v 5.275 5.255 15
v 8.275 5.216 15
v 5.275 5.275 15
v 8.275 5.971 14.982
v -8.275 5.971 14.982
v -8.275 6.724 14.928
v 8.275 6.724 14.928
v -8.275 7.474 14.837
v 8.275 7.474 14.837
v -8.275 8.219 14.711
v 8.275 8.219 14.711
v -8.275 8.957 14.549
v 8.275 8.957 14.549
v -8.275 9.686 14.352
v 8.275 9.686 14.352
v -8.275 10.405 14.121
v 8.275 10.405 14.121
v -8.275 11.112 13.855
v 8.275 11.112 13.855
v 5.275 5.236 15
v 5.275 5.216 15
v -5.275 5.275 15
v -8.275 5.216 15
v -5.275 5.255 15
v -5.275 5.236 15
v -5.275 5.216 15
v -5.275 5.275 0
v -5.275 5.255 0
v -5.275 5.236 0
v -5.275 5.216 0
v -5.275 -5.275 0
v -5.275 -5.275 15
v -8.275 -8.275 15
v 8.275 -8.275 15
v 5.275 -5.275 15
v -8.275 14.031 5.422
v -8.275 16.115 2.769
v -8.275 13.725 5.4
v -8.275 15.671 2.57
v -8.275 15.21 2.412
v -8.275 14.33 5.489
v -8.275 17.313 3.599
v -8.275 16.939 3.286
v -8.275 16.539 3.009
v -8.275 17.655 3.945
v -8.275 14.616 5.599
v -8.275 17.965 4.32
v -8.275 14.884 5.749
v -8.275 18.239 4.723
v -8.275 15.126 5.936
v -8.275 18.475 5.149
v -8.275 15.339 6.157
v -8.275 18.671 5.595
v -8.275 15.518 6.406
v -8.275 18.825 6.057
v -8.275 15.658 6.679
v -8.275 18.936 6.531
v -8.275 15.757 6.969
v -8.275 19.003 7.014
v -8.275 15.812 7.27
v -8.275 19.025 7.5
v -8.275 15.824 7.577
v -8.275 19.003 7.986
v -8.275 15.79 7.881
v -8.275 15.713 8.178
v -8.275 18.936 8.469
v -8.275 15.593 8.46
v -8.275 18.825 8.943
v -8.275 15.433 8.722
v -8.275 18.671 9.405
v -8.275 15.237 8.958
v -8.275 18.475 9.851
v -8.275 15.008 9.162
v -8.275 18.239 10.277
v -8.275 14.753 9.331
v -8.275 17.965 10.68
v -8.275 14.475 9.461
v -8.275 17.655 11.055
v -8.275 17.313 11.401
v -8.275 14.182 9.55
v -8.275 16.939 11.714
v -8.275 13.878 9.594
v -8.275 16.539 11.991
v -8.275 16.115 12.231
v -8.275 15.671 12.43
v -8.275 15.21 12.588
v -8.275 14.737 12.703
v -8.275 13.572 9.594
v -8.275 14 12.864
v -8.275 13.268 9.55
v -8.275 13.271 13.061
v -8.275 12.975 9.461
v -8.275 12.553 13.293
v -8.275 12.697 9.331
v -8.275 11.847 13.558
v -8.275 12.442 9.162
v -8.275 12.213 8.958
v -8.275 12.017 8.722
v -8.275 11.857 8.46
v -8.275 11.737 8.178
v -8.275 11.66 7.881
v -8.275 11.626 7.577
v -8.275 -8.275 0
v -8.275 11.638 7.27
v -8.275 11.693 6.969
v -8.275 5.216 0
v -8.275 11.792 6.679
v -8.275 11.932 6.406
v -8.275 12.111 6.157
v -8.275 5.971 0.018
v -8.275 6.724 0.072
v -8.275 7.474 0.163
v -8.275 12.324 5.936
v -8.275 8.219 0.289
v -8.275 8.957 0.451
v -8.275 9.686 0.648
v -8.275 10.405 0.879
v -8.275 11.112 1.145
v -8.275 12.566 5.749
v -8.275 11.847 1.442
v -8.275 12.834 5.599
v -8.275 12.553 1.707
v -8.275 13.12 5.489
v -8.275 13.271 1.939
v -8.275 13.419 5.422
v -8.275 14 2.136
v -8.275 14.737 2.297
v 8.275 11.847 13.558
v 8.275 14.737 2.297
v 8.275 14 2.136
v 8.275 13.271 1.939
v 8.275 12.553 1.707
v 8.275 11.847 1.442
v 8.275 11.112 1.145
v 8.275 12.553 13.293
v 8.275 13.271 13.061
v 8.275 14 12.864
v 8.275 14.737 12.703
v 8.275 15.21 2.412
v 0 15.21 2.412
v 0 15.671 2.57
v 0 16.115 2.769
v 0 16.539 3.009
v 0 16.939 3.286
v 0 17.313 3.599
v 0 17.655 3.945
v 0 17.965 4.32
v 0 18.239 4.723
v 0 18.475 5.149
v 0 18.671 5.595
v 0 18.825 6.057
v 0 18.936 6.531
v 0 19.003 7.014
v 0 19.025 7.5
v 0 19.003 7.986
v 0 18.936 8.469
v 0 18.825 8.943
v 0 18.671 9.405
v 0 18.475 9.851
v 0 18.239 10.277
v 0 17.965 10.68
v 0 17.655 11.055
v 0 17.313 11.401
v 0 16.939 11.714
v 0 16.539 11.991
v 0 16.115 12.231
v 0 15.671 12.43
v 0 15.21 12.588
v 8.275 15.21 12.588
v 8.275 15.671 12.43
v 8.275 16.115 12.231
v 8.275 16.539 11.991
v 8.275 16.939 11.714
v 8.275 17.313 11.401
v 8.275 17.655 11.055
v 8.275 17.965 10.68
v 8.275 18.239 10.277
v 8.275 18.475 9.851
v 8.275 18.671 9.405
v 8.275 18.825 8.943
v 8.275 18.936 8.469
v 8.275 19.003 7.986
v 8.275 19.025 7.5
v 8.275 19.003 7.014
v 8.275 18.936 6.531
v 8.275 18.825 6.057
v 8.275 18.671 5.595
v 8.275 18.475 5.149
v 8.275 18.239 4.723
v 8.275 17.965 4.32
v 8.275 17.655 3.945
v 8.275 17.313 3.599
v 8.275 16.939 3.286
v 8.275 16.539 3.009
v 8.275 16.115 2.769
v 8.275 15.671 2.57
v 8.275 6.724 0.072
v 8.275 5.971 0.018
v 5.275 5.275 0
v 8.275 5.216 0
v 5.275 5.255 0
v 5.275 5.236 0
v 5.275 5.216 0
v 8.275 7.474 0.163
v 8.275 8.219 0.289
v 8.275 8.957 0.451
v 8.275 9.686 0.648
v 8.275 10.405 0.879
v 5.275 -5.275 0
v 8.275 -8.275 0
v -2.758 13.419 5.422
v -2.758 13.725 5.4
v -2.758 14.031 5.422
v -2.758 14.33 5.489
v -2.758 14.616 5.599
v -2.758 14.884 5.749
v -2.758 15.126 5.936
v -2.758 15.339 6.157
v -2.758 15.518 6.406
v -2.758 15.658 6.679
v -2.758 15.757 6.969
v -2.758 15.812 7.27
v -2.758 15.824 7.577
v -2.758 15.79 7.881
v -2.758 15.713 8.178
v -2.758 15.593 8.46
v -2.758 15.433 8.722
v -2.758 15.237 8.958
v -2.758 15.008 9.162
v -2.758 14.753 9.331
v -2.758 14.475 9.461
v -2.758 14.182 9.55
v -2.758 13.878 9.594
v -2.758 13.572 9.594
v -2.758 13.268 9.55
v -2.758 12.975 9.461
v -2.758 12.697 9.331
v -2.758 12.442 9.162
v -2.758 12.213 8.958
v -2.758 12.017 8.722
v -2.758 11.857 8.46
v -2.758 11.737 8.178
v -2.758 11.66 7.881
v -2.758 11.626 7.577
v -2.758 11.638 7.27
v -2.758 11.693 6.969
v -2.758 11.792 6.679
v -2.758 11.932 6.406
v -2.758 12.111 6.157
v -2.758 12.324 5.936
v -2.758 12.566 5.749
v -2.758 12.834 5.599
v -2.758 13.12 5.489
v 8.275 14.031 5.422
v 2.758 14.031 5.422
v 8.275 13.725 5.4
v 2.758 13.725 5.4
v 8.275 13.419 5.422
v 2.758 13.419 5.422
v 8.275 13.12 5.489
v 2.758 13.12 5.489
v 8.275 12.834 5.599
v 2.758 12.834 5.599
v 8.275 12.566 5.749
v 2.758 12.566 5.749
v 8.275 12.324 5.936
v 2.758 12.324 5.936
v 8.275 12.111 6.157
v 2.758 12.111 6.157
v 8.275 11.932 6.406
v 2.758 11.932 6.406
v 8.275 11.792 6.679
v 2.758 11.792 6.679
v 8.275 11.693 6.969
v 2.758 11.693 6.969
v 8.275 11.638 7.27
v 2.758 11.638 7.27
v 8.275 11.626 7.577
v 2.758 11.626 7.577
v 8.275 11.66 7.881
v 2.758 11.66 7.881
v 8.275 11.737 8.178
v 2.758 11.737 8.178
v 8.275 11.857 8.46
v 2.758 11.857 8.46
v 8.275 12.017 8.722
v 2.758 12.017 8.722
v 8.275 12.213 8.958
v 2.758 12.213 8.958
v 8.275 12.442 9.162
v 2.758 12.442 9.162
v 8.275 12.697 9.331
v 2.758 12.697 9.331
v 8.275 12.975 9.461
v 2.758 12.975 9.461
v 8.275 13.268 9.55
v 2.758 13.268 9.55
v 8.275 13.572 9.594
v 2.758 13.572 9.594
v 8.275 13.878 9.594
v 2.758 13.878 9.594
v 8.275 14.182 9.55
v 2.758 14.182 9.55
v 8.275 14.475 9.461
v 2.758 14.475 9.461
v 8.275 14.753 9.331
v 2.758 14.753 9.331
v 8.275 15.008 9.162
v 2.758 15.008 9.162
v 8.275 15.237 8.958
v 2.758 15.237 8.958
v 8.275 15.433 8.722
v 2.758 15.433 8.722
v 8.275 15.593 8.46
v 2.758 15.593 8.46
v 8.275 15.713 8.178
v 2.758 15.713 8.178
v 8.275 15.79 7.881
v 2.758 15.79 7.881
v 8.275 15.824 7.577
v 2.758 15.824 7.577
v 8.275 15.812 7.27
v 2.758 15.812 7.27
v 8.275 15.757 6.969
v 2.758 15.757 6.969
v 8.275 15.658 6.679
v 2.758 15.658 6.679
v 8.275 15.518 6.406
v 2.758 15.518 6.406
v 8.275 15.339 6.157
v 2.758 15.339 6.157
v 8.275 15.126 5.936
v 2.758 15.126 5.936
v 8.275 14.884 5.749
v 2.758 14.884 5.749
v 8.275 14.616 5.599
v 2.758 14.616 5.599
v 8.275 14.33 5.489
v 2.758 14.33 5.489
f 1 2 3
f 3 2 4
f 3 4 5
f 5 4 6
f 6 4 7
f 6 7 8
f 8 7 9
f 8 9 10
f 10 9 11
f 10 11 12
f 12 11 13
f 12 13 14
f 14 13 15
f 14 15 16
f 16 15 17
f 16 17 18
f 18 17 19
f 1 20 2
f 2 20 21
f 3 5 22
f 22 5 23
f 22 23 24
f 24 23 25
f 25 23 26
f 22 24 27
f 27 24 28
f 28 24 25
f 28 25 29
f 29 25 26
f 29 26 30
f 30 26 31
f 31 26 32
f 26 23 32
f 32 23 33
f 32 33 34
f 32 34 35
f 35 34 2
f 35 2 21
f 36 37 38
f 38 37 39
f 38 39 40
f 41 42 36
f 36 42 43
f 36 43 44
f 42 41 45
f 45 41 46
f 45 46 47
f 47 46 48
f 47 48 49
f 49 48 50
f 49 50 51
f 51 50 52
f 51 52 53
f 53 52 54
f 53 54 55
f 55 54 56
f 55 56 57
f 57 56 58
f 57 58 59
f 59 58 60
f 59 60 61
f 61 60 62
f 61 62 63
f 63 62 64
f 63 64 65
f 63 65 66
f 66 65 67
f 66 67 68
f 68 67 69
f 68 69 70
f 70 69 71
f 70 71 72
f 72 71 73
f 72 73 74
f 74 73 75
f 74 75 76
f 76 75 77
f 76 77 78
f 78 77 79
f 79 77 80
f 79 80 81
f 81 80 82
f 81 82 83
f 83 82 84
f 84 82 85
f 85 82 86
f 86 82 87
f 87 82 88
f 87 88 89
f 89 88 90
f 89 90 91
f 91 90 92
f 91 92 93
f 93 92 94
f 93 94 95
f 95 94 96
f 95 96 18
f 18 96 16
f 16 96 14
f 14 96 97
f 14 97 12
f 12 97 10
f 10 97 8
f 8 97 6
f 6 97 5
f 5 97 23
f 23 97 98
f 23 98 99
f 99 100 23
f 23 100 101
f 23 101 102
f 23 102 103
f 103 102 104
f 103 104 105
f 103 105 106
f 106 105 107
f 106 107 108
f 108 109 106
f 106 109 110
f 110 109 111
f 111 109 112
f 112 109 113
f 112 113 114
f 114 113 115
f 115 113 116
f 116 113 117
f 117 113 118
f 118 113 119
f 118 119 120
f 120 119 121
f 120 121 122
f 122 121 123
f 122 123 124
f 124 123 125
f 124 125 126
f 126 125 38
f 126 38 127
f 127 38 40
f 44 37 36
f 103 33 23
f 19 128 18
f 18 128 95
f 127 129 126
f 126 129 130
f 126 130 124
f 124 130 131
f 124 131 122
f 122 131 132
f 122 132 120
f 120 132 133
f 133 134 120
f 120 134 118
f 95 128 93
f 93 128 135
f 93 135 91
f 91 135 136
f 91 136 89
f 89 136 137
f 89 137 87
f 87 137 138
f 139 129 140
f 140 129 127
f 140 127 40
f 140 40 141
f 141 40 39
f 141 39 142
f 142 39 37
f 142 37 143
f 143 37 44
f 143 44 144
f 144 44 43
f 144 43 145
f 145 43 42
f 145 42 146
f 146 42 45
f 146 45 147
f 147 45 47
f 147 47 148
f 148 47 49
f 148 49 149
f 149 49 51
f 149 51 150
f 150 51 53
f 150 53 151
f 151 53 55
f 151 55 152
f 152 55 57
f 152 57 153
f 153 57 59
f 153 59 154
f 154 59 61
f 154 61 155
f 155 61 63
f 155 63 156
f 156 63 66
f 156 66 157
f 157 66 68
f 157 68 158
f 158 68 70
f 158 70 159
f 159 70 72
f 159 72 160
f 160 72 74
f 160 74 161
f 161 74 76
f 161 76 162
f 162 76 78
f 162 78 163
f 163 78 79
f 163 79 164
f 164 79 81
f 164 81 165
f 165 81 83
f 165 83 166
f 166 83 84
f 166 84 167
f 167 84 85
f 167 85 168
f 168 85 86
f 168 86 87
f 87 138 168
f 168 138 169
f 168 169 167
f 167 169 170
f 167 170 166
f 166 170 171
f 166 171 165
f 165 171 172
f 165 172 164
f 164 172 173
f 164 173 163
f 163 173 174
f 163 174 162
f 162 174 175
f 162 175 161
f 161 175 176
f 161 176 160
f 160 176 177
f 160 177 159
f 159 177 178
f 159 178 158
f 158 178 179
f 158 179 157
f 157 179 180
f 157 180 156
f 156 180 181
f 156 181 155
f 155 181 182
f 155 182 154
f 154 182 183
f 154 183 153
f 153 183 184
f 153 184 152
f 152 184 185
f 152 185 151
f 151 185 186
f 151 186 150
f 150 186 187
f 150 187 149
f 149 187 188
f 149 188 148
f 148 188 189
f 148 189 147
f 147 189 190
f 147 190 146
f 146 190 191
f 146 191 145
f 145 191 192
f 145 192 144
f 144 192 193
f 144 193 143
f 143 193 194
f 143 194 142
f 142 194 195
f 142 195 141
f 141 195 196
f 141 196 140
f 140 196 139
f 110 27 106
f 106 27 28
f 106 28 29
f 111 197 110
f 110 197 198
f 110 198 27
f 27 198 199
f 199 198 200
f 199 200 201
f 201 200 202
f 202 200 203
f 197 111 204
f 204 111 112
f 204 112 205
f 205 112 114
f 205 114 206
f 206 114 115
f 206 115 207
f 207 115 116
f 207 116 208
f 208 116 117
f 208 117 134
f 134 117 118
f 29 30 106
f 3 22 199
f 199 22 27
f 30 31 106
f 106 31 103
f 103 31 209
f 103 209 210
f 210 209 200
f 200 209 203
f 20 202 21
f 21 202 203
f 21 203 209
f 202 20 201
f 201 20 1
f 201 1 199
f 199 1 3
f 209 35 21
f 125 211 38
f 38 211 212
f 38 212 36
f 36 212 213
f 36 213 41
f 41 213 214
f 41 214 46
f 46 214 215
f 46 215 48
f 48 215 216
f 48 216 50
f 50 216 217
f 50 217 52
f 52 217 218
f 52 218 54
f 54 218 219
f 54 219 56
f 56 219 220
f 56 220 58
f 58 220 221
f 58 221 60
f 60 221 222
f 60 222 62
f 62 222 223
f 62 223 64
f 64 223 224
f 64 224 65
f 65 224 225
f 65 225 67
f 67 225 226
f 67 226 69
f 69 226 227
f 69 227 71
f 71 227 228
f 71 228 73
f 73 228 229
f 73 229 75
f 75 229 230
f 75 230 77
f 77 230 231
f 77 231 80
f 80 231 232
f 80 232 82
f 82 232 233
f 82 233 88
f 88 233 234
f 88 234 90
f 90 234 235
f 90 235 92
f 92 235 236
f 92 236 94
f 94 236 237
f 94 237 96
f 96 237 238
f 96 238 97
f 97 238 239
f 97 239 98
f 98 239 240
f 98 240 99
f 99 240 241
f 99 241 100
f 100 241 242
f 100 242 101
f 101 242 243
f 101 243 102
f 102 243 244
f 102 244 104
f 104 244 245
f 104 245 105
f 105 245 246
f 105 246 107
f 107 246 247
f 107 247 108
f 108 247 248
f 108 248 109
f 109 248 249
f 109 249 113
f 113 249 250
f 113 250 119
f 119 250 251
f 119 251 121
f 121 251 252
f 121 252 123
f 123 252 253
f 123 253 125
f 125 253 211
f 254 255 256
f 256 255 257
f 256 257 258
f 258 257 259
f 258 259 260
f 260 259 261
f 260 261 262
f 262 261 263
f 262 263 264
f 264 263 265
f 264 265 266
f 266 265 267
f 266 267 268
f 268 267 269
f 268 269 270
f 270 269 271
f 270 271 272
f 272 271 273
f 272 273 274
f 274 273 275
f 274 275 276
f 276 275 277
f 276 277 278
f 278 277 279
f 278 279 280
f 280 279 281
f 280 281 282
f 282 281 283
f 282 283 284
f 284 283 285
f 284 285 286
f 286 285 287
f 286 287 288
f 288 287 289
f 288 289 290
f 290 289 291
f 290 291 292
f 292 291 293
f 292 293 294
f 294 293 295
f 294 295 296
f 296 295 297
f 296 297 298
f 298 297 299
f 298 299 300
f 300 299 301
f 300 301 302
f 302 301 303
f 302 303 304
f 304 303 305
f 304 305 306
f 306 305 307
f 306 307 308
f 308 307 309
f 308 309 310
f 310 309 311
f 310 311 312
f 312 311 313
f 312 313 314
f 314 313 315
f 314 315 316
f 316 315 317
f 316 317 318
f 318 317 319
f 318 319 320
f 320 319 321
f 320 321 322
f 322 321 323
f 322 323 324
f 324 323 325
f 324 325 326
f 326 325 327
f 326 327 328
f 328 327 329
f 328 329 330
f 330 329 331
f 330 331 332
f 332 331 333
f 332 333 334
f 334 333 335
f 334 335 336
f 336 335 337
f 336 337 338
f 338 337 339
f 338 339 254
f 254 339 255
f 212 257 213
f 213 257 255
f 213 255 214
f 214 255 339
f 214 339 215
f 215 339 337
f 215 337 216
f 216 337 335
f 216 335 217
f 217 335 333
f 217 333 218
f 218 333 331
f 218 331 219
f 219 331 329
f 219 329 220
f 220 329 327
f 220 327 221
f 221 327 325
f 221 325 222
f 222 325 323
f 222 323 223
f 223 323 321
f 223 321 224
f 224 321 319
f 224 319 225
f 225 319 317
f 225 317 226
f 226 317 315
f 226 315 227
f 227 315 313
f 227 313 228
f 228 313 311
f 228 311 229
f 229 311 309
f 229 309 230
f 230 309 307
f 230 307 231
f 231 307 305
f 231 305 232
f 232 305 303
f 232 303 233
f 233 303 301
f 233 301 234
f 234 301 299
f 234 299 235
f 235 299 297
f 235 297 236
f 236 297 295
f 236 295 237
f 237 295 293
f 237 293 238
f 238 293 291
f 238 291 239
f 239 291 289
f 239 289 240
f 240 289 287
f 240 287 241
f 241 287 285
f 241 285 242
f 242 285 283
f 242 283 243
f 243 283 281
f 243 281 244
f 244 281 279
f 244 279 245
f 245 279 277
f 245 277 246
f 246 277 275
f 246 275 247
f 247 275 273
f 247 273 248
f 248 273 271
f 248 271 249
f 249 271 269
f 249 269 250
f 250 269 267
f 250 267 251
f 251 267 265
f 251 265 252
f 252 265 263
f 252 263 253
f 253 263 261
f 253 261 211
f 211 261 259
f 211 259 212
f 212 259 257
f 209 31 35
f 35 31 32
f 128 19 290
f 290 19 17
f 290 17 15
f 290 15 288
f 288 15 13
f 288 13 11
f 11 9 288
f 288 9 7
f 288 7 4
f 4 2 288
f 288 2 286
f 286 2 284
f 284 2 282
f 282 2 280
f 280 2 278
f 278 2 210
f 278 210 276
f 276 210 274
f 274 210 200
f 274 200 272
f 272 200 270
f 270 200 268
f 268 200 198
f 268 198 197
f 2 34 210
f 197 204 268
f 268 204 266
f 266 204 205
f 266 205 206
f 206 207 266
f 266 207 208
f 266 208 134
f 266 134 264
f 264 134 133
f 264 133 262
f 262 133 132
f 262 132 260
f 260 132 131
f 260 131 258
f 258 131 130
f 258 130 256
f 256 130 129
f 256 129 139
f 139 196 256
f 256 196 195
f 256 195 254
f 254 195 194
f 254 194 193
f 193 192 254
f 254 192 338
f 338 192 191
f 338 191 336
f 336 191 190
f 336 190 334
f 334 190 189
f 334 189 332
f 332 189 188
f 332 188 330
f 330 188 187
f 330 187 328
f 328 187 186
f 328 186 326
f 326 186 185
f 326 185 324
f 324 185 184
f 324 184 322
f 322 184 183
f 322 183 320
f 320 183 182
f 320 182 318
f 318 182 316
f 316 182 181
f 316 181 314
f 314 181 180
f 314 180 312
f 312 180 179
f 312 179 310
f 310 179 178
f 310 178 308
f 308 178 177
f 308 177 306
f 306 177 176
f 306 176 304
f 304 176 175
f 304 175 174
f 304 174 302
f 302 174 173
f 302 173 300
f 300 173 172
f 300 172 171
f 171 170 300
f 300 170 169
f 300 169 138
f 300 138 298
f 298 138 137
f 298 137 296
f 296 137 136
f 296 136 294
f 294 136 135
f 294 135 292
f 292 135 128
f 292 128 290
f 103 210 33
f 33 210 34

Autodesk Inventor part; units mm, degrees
ref_plane "YZ Plane" through (0, 0, 0) normal (1, 0, 0) x (0, 1, 0)
ref_plane "XZ Plane" through (0, 0, 0) normal (0, 1, 0) x (-1, 0, 0)
ref_plane "XY Plane" through (0, 0, 0) normal (0, 0, 1) x (1, 0, 0)
sketch "Skizze1" plane through (0, 0, 0) normal (0, 0, 1) x (1, 0, 0)
  line L0 (-5.275, 5.275) -> (5.275, 5.275)
  line L1 (5.275, 5.275) -> (5.275, -5.275)
  line L2 (5.275, -5.275) -> (-5.275, -5.275)
  line L3 (-5.275, -5.275) -> (-5.275, 5.275)
  line L4 (-5.275, 5.275) -> (5.275, -5.275) construction
  line L5 (5.275, 5.275) -> (-5.275, -5.275) construction
  line L6 (8.275, 8.275) -> (-8.275, 8.275)
  line L7 (-8.275, 8.275) -> (-8.275, -8.275)
  line L8 (-8.275, -8.275) -> (8.275, -8.275)
  line L9 (8.275, -8.275) -> (8.275, 8.275)
  point P0 (0, 0)
  dimension "d0" = 10.55
  dimension "d1" = 10.55
  dimension "d2" = 3
extrude "Extrusion1" add sketch "Skizze1" along normal blind 15
sketch "Skizze2" plane through (8.275, -8.275, 0) normal (1, 0, 0) x (0, 0, -1)
  line L0 (0, 0) -> (0, 16.55) projected
  line L1 (0, 16.55) -> (-15, 16.55) projected
  line L2 (-15, 0) -> (-15, 16.55) projected
  line L3 (0, 0) -> (-15, 0) projected
  circle A0 centre (-7.5, 22) radius 2.1
  circle A1 centre (-7.5, 22) radius 5.3
  line L4 (-15, 16.55) -> (-12.8, 22)
  line L5 (0, 16.55) -> (0, 0) projected
  line L6 (0, 16.55) -> (-2.2, 22)
  point P0 (0, 8.275)
  dimension "d5" = 4.2
  dimension "d6" = 22
  dimension "d7" = 7.5
  dimension "d8" = 3.2
extrude "Extrusion2" add sketch "Skizze2" against normal up to surface (16.55 mm away) contours L1 L4 A1 L6 | A1
fillet "Rundung1" radius 15.75 4 edges at (0, 13.725, 2.2) (0, 8.275, 0) (0, 8.275, 15) (0, 13.725, 12.8)
equation "\"d1\" = d0"
properties part number "AL_PipeMount"
